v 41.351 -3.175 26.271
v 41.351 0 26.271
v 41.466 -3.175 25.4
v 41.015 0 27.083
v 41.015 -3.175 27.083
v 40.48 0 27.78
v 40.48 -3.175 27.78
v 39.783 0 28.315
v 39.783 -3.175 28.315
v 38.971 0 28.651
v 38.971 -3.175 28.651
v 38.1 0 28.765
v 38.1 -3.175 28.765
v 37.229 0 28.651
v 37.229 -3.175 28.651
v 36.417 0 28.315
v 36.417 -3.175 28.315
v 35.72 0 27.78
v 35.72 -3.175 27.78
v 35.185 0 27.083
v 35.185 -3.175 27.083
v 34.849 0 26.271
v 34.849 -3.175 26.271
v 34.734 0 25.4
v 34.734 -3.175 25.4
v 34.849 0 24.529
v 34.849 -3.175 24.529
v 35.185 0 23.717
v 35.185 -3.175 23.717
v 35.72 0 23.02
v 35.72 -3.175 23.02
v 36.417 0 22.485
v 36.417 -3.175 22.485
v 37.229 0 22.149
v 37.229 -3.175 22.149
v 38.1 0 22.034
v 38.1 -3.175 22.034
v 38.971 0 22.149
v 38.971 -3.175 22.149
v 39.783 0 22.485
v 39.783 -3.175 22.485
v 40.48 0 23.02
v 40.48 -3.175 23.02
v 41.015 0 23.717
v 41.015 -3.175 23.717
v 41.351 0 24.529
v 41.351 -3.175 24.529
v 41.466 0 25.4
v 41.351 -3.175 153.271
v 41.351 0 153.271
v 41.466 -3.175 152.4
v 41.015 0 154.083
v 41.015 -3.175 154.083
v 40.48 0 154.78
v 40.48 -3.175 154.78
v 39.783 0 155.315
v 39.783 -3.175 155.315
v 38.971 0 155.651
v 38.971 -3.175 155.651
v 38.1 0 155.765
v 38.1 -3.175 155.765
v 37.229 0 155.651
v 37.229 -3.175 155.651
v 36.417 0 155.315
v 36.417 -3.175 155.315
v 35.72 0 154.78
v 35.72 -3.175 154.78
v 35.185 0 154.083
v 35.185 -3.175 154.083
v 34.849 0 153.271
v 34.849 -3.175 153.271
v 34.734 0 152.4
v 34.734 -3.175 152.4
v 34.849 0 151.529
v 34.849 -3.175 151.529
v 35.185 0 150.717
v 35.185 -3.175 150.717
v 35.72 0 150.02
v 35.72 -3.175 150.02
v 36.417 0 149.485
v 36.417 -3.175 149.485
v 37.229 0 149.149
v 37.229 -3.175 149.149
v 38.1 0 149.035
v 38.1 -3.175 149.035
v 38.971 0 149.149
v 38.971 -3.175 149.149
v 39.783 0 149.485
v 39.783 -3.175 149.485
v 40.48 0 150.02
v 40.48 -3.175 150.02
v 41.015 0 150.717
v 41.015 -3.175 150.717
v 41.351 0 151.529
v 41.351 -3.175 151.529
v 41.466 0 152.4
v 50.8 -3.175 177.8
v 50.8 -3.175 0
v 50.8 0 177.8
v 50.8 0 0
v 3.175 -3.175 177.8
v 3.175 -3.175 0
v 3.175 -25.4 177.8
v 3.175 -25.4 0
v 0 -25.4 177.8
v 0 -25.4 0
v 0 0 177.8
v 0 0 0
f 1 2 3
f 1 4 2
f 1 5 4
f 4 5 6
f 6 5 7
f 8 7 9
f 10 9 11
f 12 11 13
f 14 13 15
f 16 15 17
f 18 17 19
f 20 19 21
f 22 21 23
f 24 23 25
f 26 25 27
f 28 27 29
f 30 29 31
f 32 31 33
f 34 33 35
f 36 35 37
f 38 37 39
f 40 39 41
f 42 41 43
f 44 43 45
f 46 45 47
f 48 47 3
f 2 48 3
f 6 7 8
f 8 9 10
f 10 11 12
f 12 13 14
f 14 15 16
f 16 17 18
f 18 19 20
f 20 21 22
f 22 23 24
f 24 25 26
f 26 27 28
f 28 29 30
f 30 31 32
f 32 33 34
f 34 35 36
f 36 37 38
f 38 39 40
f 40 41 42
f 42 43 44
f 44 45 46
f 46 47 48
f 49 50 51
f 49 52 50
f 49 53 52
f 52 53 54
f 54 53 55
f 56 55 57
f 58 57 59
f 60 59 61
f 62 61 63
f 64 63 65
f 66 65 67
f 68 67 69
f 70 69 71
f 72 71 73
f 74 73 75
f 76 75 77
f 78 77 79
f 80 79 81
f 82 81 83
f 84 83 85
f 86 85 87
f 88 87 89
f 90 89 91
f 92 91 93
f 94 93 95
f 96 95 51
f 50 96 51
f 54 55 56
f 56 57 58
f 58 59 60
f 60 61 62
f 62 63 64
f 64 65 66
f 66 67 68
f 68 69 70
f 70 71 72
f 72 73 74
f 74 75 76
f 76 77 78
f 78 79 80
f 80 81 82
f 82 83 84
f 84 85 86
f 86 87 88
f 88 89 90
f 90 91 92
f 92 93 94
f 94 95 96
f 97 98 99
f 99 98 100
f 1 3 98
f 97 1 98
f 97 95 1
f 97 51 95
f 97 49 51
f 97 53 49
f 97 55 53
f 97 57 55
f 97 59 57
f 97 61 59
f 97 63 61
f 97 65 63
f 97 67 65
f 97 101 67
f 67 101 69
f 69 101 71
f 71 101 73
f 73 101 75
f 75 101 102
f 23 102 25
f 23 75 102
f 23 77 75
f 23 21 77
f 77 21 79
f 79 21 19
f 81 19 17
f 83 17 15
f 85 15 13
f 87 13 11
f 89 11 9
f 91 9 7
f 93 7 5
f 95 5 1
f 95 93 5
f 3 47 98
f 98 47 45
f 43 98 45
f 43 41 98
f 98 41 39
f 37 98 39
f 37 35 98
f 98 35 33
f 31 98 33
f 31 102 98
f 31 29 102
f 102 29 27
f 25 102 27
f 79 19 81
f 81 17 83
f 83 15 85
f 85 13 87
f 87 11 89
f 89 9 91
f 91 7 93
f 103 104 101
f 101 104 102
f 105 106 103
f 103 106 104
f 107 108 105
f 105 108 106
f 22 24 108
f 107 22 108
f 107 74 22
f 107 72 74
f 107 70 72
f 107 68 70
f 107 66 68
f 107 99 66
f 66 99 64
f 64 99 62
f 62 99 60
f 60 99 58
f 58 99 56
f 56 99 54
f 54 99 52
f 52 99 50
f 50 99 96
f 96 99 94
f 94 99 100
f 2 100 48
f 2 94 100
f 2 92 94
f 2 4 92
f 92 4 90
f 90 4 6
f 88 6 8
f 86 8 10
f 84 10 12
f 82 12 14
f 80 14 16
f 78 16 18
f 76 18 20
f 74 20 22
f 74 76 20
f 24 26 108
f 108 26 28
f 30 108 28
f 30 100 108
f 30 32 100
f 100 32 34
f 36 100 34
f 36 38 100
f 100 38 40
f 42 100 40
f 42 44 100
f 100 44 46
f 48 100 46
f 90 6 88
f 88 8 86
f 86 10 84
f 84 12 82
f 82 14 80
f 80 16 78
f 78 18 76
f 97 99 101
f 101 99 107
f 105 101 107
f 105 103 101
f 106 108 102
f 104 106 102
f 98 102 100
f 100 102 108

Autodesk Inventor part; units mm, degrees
ref_plane "YZ Plane" through (0, 0, 0) normal (1, 0, 0) x (0, 1, 0)
ref_plane "XZ Plane" through (0, 0, 0) normal (0, 1, 0) x (-1, 0, 0)
ref_plane "XY Plane" through (0, 0, 0) normal (0, 0, 1) x (1, 0, 0)
sketch "Sketch1" plane through (0, 0, 0) normal (0, 0, 1) x (1, 0, 0)
  line L0 (0, 0) -> (50.8, 0)
  line L1 (50.8, 0) -> (50.8, -3.175)
  line L2 (50.8, -3.175) -> (3.175, -3.175)
  line L3 (3.175, -3.175) -> (3.175, -25.4)
  line L4 (3.175, -25.4) -> (0, -25.4)
  line L5 (0, -25.4) -> (0, 0)
  dimension "d0" = 3.175
  dimension "d1" = 50.8
  dimension "d2" = 25.4
extrude "Extrusion1" add sketch "Sketch1" along normal blind 177.8
hole "Hole1" at (38.1, 0, 152.4) direction (0, -1, 0) diameter 6.731 depth 25.4 tip angle 118
pattern_linear "Rectangular Pattern1" count 2 spacing 127 along (0, 0, -1) of "Hole1"
properties part number "GE-12028-06"
